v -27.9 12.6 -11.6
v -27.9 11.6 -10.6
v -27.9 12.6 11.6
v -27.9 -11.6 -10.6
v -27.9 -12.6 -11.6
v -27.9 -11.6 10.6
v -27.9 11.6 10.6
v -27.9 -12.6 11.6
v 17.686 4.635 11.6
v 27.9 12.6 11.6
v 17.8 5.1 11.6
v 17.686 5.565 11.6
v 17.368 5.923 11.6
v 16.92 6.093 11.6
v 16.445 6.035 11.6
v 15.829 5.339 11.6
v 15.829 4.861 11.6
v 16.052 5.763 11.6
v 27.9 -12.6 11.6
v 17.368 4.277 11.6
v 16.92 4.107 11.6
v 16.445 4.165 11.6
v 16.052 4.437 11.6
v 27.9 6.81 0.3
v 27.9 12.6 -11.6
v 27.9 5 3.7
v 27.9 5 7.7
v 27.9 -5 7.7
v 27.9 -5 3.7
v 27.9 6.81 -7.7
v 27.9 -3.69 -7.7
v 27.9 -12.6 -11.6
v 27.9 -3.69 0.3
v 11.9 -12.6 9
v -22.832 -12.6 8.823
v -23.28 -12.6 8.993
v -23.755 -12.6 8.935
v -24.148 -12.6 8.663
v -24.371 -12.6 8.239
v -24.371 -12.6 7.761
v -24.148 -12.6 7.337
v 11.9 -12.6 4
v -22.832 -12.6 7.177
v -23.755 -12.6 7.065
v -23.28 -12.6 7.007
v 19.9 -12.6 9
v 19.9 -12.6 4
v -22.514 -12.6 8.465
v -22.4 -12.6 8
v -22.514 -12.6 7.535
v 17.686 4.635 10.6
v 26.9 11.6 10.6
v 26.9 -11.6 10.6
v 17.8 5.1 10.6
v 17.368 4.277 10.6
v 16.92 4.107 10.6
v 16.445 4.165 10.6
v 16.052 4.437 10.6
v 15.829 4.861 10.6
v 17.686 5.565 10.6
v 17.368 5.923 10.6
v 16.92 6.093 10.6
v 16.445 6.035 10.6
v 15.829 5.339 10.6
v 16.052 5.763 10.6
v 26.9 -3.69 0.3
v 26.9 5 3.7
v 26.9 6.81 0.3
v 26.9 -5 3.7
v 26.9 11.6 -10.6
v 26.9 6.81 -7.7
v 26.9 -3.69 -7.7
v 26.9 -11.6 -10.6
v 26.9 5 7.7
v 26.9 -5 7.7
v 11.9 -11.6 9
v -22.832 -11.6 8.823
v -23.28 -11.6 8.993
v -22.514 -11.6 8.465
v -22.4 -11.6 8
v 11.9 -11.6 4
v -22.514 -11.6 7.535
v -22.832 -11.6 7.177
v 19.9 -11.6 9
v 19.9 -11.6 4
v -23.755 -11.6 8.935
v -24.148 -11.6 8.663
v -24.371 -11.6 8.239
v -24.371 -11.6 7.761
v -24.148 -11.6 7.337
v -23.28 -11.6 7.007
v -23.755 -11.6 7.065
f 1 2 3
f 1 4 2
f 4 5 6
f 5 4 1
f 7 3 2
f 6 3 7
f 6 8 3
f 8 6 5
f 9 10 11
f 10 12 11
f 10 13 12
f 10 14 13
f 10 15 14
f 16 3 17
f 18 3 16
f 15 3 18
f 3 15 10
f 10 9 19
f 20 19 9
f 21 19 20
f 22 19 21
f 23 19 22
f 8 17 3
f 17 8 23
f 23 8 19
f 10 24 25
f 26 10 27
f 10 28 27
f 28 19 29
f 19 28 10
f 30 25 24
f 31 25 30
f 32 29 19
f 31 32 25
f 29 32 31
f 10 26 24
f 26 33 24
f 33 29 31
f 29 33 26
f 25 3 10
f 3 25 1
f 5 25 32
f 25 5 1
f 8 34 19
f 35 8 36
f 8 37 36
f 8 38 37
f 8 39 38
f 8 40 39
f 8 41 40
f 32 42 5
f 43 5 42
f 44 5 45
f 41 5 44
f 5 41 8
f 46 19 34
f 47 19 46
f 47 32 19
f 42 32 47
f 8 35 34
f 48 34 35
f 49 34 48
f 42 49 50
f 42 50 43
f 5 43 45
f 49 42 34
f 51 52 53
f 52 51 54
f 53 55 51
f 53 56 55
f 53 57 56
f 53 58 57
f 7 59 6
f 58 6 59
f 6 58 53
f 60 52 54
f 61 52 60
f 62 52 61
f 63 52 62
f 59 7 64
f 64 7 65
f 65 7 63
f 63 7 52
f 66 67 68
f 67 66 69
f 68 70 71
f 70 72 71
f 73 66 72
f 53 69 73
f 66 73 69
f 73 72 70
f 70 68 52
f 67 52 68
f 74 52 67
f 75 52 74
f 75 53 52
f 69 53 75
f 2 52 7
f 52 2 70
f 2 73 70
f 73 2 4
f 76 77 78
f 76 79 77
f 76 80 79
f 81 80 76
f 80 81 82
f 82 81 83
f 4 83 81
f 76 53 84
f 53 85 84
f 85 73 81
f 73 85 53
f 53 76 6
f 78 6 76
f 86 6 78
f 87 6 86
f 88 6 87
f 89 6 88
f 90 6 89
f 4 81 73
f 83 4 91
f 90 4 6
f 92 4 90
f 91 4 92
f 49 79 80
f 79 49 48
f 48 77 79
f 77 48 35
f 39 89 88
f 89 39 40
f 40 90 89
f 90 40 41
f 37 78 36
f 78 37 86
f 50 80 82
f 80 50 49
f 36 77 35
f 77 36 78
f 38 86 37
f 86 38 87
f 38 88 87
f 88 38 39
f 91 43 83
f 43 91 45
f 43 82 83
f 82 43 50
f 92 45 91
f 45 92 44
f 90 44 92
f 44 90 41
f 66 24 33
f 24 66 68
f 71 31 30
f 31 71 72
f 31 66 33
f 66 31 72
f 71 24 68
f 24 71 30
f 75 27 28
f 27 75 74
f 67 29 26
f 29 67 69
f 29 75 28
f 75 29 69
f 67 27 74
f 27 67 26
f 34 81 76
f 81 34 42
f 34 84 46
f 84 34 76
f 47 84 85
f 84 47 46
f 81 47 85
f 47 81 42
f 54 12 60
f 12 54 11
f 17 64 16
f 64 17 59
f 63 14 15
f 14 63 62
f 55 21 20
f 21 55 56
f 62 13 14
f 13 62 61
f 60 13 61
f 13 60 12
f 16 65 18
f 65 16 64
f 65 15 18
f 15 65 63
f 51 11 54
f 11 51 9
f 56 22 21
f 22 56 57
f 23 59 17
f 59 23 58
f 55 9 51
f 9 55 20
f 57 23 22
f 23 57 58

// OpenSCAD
$fa = 12;
$fs = 0.5;

// gehauese
//rotate([0,90,0])
{
difference(){
cube([55.8,25.2,23.2], center = true);
// inner cube    
translate([-1,0,0])
    cube([55.8,23.2,21.2], center = true);  
// antenna hole
translate([-23.4,-10,8])
    rotate([90,0,0])
    cylinder(h=4,r=1);  
// hole for servo pins  
translate([26.9,1.56,-3.7])    
    cube ([4, 10.5, 8], center = true); 
// hole for USB 
translate([26.9, 0, 5.7])
    cube ([5, 10, 4], center = true);  
// hole for battery
translate([15.9,-12, 6.5])
    cube ([8, 3, 5], center = true);   
 
// rest button
translate([16.8,5.1, 10])
    cylinder(h=3, r=1);     
}} 
